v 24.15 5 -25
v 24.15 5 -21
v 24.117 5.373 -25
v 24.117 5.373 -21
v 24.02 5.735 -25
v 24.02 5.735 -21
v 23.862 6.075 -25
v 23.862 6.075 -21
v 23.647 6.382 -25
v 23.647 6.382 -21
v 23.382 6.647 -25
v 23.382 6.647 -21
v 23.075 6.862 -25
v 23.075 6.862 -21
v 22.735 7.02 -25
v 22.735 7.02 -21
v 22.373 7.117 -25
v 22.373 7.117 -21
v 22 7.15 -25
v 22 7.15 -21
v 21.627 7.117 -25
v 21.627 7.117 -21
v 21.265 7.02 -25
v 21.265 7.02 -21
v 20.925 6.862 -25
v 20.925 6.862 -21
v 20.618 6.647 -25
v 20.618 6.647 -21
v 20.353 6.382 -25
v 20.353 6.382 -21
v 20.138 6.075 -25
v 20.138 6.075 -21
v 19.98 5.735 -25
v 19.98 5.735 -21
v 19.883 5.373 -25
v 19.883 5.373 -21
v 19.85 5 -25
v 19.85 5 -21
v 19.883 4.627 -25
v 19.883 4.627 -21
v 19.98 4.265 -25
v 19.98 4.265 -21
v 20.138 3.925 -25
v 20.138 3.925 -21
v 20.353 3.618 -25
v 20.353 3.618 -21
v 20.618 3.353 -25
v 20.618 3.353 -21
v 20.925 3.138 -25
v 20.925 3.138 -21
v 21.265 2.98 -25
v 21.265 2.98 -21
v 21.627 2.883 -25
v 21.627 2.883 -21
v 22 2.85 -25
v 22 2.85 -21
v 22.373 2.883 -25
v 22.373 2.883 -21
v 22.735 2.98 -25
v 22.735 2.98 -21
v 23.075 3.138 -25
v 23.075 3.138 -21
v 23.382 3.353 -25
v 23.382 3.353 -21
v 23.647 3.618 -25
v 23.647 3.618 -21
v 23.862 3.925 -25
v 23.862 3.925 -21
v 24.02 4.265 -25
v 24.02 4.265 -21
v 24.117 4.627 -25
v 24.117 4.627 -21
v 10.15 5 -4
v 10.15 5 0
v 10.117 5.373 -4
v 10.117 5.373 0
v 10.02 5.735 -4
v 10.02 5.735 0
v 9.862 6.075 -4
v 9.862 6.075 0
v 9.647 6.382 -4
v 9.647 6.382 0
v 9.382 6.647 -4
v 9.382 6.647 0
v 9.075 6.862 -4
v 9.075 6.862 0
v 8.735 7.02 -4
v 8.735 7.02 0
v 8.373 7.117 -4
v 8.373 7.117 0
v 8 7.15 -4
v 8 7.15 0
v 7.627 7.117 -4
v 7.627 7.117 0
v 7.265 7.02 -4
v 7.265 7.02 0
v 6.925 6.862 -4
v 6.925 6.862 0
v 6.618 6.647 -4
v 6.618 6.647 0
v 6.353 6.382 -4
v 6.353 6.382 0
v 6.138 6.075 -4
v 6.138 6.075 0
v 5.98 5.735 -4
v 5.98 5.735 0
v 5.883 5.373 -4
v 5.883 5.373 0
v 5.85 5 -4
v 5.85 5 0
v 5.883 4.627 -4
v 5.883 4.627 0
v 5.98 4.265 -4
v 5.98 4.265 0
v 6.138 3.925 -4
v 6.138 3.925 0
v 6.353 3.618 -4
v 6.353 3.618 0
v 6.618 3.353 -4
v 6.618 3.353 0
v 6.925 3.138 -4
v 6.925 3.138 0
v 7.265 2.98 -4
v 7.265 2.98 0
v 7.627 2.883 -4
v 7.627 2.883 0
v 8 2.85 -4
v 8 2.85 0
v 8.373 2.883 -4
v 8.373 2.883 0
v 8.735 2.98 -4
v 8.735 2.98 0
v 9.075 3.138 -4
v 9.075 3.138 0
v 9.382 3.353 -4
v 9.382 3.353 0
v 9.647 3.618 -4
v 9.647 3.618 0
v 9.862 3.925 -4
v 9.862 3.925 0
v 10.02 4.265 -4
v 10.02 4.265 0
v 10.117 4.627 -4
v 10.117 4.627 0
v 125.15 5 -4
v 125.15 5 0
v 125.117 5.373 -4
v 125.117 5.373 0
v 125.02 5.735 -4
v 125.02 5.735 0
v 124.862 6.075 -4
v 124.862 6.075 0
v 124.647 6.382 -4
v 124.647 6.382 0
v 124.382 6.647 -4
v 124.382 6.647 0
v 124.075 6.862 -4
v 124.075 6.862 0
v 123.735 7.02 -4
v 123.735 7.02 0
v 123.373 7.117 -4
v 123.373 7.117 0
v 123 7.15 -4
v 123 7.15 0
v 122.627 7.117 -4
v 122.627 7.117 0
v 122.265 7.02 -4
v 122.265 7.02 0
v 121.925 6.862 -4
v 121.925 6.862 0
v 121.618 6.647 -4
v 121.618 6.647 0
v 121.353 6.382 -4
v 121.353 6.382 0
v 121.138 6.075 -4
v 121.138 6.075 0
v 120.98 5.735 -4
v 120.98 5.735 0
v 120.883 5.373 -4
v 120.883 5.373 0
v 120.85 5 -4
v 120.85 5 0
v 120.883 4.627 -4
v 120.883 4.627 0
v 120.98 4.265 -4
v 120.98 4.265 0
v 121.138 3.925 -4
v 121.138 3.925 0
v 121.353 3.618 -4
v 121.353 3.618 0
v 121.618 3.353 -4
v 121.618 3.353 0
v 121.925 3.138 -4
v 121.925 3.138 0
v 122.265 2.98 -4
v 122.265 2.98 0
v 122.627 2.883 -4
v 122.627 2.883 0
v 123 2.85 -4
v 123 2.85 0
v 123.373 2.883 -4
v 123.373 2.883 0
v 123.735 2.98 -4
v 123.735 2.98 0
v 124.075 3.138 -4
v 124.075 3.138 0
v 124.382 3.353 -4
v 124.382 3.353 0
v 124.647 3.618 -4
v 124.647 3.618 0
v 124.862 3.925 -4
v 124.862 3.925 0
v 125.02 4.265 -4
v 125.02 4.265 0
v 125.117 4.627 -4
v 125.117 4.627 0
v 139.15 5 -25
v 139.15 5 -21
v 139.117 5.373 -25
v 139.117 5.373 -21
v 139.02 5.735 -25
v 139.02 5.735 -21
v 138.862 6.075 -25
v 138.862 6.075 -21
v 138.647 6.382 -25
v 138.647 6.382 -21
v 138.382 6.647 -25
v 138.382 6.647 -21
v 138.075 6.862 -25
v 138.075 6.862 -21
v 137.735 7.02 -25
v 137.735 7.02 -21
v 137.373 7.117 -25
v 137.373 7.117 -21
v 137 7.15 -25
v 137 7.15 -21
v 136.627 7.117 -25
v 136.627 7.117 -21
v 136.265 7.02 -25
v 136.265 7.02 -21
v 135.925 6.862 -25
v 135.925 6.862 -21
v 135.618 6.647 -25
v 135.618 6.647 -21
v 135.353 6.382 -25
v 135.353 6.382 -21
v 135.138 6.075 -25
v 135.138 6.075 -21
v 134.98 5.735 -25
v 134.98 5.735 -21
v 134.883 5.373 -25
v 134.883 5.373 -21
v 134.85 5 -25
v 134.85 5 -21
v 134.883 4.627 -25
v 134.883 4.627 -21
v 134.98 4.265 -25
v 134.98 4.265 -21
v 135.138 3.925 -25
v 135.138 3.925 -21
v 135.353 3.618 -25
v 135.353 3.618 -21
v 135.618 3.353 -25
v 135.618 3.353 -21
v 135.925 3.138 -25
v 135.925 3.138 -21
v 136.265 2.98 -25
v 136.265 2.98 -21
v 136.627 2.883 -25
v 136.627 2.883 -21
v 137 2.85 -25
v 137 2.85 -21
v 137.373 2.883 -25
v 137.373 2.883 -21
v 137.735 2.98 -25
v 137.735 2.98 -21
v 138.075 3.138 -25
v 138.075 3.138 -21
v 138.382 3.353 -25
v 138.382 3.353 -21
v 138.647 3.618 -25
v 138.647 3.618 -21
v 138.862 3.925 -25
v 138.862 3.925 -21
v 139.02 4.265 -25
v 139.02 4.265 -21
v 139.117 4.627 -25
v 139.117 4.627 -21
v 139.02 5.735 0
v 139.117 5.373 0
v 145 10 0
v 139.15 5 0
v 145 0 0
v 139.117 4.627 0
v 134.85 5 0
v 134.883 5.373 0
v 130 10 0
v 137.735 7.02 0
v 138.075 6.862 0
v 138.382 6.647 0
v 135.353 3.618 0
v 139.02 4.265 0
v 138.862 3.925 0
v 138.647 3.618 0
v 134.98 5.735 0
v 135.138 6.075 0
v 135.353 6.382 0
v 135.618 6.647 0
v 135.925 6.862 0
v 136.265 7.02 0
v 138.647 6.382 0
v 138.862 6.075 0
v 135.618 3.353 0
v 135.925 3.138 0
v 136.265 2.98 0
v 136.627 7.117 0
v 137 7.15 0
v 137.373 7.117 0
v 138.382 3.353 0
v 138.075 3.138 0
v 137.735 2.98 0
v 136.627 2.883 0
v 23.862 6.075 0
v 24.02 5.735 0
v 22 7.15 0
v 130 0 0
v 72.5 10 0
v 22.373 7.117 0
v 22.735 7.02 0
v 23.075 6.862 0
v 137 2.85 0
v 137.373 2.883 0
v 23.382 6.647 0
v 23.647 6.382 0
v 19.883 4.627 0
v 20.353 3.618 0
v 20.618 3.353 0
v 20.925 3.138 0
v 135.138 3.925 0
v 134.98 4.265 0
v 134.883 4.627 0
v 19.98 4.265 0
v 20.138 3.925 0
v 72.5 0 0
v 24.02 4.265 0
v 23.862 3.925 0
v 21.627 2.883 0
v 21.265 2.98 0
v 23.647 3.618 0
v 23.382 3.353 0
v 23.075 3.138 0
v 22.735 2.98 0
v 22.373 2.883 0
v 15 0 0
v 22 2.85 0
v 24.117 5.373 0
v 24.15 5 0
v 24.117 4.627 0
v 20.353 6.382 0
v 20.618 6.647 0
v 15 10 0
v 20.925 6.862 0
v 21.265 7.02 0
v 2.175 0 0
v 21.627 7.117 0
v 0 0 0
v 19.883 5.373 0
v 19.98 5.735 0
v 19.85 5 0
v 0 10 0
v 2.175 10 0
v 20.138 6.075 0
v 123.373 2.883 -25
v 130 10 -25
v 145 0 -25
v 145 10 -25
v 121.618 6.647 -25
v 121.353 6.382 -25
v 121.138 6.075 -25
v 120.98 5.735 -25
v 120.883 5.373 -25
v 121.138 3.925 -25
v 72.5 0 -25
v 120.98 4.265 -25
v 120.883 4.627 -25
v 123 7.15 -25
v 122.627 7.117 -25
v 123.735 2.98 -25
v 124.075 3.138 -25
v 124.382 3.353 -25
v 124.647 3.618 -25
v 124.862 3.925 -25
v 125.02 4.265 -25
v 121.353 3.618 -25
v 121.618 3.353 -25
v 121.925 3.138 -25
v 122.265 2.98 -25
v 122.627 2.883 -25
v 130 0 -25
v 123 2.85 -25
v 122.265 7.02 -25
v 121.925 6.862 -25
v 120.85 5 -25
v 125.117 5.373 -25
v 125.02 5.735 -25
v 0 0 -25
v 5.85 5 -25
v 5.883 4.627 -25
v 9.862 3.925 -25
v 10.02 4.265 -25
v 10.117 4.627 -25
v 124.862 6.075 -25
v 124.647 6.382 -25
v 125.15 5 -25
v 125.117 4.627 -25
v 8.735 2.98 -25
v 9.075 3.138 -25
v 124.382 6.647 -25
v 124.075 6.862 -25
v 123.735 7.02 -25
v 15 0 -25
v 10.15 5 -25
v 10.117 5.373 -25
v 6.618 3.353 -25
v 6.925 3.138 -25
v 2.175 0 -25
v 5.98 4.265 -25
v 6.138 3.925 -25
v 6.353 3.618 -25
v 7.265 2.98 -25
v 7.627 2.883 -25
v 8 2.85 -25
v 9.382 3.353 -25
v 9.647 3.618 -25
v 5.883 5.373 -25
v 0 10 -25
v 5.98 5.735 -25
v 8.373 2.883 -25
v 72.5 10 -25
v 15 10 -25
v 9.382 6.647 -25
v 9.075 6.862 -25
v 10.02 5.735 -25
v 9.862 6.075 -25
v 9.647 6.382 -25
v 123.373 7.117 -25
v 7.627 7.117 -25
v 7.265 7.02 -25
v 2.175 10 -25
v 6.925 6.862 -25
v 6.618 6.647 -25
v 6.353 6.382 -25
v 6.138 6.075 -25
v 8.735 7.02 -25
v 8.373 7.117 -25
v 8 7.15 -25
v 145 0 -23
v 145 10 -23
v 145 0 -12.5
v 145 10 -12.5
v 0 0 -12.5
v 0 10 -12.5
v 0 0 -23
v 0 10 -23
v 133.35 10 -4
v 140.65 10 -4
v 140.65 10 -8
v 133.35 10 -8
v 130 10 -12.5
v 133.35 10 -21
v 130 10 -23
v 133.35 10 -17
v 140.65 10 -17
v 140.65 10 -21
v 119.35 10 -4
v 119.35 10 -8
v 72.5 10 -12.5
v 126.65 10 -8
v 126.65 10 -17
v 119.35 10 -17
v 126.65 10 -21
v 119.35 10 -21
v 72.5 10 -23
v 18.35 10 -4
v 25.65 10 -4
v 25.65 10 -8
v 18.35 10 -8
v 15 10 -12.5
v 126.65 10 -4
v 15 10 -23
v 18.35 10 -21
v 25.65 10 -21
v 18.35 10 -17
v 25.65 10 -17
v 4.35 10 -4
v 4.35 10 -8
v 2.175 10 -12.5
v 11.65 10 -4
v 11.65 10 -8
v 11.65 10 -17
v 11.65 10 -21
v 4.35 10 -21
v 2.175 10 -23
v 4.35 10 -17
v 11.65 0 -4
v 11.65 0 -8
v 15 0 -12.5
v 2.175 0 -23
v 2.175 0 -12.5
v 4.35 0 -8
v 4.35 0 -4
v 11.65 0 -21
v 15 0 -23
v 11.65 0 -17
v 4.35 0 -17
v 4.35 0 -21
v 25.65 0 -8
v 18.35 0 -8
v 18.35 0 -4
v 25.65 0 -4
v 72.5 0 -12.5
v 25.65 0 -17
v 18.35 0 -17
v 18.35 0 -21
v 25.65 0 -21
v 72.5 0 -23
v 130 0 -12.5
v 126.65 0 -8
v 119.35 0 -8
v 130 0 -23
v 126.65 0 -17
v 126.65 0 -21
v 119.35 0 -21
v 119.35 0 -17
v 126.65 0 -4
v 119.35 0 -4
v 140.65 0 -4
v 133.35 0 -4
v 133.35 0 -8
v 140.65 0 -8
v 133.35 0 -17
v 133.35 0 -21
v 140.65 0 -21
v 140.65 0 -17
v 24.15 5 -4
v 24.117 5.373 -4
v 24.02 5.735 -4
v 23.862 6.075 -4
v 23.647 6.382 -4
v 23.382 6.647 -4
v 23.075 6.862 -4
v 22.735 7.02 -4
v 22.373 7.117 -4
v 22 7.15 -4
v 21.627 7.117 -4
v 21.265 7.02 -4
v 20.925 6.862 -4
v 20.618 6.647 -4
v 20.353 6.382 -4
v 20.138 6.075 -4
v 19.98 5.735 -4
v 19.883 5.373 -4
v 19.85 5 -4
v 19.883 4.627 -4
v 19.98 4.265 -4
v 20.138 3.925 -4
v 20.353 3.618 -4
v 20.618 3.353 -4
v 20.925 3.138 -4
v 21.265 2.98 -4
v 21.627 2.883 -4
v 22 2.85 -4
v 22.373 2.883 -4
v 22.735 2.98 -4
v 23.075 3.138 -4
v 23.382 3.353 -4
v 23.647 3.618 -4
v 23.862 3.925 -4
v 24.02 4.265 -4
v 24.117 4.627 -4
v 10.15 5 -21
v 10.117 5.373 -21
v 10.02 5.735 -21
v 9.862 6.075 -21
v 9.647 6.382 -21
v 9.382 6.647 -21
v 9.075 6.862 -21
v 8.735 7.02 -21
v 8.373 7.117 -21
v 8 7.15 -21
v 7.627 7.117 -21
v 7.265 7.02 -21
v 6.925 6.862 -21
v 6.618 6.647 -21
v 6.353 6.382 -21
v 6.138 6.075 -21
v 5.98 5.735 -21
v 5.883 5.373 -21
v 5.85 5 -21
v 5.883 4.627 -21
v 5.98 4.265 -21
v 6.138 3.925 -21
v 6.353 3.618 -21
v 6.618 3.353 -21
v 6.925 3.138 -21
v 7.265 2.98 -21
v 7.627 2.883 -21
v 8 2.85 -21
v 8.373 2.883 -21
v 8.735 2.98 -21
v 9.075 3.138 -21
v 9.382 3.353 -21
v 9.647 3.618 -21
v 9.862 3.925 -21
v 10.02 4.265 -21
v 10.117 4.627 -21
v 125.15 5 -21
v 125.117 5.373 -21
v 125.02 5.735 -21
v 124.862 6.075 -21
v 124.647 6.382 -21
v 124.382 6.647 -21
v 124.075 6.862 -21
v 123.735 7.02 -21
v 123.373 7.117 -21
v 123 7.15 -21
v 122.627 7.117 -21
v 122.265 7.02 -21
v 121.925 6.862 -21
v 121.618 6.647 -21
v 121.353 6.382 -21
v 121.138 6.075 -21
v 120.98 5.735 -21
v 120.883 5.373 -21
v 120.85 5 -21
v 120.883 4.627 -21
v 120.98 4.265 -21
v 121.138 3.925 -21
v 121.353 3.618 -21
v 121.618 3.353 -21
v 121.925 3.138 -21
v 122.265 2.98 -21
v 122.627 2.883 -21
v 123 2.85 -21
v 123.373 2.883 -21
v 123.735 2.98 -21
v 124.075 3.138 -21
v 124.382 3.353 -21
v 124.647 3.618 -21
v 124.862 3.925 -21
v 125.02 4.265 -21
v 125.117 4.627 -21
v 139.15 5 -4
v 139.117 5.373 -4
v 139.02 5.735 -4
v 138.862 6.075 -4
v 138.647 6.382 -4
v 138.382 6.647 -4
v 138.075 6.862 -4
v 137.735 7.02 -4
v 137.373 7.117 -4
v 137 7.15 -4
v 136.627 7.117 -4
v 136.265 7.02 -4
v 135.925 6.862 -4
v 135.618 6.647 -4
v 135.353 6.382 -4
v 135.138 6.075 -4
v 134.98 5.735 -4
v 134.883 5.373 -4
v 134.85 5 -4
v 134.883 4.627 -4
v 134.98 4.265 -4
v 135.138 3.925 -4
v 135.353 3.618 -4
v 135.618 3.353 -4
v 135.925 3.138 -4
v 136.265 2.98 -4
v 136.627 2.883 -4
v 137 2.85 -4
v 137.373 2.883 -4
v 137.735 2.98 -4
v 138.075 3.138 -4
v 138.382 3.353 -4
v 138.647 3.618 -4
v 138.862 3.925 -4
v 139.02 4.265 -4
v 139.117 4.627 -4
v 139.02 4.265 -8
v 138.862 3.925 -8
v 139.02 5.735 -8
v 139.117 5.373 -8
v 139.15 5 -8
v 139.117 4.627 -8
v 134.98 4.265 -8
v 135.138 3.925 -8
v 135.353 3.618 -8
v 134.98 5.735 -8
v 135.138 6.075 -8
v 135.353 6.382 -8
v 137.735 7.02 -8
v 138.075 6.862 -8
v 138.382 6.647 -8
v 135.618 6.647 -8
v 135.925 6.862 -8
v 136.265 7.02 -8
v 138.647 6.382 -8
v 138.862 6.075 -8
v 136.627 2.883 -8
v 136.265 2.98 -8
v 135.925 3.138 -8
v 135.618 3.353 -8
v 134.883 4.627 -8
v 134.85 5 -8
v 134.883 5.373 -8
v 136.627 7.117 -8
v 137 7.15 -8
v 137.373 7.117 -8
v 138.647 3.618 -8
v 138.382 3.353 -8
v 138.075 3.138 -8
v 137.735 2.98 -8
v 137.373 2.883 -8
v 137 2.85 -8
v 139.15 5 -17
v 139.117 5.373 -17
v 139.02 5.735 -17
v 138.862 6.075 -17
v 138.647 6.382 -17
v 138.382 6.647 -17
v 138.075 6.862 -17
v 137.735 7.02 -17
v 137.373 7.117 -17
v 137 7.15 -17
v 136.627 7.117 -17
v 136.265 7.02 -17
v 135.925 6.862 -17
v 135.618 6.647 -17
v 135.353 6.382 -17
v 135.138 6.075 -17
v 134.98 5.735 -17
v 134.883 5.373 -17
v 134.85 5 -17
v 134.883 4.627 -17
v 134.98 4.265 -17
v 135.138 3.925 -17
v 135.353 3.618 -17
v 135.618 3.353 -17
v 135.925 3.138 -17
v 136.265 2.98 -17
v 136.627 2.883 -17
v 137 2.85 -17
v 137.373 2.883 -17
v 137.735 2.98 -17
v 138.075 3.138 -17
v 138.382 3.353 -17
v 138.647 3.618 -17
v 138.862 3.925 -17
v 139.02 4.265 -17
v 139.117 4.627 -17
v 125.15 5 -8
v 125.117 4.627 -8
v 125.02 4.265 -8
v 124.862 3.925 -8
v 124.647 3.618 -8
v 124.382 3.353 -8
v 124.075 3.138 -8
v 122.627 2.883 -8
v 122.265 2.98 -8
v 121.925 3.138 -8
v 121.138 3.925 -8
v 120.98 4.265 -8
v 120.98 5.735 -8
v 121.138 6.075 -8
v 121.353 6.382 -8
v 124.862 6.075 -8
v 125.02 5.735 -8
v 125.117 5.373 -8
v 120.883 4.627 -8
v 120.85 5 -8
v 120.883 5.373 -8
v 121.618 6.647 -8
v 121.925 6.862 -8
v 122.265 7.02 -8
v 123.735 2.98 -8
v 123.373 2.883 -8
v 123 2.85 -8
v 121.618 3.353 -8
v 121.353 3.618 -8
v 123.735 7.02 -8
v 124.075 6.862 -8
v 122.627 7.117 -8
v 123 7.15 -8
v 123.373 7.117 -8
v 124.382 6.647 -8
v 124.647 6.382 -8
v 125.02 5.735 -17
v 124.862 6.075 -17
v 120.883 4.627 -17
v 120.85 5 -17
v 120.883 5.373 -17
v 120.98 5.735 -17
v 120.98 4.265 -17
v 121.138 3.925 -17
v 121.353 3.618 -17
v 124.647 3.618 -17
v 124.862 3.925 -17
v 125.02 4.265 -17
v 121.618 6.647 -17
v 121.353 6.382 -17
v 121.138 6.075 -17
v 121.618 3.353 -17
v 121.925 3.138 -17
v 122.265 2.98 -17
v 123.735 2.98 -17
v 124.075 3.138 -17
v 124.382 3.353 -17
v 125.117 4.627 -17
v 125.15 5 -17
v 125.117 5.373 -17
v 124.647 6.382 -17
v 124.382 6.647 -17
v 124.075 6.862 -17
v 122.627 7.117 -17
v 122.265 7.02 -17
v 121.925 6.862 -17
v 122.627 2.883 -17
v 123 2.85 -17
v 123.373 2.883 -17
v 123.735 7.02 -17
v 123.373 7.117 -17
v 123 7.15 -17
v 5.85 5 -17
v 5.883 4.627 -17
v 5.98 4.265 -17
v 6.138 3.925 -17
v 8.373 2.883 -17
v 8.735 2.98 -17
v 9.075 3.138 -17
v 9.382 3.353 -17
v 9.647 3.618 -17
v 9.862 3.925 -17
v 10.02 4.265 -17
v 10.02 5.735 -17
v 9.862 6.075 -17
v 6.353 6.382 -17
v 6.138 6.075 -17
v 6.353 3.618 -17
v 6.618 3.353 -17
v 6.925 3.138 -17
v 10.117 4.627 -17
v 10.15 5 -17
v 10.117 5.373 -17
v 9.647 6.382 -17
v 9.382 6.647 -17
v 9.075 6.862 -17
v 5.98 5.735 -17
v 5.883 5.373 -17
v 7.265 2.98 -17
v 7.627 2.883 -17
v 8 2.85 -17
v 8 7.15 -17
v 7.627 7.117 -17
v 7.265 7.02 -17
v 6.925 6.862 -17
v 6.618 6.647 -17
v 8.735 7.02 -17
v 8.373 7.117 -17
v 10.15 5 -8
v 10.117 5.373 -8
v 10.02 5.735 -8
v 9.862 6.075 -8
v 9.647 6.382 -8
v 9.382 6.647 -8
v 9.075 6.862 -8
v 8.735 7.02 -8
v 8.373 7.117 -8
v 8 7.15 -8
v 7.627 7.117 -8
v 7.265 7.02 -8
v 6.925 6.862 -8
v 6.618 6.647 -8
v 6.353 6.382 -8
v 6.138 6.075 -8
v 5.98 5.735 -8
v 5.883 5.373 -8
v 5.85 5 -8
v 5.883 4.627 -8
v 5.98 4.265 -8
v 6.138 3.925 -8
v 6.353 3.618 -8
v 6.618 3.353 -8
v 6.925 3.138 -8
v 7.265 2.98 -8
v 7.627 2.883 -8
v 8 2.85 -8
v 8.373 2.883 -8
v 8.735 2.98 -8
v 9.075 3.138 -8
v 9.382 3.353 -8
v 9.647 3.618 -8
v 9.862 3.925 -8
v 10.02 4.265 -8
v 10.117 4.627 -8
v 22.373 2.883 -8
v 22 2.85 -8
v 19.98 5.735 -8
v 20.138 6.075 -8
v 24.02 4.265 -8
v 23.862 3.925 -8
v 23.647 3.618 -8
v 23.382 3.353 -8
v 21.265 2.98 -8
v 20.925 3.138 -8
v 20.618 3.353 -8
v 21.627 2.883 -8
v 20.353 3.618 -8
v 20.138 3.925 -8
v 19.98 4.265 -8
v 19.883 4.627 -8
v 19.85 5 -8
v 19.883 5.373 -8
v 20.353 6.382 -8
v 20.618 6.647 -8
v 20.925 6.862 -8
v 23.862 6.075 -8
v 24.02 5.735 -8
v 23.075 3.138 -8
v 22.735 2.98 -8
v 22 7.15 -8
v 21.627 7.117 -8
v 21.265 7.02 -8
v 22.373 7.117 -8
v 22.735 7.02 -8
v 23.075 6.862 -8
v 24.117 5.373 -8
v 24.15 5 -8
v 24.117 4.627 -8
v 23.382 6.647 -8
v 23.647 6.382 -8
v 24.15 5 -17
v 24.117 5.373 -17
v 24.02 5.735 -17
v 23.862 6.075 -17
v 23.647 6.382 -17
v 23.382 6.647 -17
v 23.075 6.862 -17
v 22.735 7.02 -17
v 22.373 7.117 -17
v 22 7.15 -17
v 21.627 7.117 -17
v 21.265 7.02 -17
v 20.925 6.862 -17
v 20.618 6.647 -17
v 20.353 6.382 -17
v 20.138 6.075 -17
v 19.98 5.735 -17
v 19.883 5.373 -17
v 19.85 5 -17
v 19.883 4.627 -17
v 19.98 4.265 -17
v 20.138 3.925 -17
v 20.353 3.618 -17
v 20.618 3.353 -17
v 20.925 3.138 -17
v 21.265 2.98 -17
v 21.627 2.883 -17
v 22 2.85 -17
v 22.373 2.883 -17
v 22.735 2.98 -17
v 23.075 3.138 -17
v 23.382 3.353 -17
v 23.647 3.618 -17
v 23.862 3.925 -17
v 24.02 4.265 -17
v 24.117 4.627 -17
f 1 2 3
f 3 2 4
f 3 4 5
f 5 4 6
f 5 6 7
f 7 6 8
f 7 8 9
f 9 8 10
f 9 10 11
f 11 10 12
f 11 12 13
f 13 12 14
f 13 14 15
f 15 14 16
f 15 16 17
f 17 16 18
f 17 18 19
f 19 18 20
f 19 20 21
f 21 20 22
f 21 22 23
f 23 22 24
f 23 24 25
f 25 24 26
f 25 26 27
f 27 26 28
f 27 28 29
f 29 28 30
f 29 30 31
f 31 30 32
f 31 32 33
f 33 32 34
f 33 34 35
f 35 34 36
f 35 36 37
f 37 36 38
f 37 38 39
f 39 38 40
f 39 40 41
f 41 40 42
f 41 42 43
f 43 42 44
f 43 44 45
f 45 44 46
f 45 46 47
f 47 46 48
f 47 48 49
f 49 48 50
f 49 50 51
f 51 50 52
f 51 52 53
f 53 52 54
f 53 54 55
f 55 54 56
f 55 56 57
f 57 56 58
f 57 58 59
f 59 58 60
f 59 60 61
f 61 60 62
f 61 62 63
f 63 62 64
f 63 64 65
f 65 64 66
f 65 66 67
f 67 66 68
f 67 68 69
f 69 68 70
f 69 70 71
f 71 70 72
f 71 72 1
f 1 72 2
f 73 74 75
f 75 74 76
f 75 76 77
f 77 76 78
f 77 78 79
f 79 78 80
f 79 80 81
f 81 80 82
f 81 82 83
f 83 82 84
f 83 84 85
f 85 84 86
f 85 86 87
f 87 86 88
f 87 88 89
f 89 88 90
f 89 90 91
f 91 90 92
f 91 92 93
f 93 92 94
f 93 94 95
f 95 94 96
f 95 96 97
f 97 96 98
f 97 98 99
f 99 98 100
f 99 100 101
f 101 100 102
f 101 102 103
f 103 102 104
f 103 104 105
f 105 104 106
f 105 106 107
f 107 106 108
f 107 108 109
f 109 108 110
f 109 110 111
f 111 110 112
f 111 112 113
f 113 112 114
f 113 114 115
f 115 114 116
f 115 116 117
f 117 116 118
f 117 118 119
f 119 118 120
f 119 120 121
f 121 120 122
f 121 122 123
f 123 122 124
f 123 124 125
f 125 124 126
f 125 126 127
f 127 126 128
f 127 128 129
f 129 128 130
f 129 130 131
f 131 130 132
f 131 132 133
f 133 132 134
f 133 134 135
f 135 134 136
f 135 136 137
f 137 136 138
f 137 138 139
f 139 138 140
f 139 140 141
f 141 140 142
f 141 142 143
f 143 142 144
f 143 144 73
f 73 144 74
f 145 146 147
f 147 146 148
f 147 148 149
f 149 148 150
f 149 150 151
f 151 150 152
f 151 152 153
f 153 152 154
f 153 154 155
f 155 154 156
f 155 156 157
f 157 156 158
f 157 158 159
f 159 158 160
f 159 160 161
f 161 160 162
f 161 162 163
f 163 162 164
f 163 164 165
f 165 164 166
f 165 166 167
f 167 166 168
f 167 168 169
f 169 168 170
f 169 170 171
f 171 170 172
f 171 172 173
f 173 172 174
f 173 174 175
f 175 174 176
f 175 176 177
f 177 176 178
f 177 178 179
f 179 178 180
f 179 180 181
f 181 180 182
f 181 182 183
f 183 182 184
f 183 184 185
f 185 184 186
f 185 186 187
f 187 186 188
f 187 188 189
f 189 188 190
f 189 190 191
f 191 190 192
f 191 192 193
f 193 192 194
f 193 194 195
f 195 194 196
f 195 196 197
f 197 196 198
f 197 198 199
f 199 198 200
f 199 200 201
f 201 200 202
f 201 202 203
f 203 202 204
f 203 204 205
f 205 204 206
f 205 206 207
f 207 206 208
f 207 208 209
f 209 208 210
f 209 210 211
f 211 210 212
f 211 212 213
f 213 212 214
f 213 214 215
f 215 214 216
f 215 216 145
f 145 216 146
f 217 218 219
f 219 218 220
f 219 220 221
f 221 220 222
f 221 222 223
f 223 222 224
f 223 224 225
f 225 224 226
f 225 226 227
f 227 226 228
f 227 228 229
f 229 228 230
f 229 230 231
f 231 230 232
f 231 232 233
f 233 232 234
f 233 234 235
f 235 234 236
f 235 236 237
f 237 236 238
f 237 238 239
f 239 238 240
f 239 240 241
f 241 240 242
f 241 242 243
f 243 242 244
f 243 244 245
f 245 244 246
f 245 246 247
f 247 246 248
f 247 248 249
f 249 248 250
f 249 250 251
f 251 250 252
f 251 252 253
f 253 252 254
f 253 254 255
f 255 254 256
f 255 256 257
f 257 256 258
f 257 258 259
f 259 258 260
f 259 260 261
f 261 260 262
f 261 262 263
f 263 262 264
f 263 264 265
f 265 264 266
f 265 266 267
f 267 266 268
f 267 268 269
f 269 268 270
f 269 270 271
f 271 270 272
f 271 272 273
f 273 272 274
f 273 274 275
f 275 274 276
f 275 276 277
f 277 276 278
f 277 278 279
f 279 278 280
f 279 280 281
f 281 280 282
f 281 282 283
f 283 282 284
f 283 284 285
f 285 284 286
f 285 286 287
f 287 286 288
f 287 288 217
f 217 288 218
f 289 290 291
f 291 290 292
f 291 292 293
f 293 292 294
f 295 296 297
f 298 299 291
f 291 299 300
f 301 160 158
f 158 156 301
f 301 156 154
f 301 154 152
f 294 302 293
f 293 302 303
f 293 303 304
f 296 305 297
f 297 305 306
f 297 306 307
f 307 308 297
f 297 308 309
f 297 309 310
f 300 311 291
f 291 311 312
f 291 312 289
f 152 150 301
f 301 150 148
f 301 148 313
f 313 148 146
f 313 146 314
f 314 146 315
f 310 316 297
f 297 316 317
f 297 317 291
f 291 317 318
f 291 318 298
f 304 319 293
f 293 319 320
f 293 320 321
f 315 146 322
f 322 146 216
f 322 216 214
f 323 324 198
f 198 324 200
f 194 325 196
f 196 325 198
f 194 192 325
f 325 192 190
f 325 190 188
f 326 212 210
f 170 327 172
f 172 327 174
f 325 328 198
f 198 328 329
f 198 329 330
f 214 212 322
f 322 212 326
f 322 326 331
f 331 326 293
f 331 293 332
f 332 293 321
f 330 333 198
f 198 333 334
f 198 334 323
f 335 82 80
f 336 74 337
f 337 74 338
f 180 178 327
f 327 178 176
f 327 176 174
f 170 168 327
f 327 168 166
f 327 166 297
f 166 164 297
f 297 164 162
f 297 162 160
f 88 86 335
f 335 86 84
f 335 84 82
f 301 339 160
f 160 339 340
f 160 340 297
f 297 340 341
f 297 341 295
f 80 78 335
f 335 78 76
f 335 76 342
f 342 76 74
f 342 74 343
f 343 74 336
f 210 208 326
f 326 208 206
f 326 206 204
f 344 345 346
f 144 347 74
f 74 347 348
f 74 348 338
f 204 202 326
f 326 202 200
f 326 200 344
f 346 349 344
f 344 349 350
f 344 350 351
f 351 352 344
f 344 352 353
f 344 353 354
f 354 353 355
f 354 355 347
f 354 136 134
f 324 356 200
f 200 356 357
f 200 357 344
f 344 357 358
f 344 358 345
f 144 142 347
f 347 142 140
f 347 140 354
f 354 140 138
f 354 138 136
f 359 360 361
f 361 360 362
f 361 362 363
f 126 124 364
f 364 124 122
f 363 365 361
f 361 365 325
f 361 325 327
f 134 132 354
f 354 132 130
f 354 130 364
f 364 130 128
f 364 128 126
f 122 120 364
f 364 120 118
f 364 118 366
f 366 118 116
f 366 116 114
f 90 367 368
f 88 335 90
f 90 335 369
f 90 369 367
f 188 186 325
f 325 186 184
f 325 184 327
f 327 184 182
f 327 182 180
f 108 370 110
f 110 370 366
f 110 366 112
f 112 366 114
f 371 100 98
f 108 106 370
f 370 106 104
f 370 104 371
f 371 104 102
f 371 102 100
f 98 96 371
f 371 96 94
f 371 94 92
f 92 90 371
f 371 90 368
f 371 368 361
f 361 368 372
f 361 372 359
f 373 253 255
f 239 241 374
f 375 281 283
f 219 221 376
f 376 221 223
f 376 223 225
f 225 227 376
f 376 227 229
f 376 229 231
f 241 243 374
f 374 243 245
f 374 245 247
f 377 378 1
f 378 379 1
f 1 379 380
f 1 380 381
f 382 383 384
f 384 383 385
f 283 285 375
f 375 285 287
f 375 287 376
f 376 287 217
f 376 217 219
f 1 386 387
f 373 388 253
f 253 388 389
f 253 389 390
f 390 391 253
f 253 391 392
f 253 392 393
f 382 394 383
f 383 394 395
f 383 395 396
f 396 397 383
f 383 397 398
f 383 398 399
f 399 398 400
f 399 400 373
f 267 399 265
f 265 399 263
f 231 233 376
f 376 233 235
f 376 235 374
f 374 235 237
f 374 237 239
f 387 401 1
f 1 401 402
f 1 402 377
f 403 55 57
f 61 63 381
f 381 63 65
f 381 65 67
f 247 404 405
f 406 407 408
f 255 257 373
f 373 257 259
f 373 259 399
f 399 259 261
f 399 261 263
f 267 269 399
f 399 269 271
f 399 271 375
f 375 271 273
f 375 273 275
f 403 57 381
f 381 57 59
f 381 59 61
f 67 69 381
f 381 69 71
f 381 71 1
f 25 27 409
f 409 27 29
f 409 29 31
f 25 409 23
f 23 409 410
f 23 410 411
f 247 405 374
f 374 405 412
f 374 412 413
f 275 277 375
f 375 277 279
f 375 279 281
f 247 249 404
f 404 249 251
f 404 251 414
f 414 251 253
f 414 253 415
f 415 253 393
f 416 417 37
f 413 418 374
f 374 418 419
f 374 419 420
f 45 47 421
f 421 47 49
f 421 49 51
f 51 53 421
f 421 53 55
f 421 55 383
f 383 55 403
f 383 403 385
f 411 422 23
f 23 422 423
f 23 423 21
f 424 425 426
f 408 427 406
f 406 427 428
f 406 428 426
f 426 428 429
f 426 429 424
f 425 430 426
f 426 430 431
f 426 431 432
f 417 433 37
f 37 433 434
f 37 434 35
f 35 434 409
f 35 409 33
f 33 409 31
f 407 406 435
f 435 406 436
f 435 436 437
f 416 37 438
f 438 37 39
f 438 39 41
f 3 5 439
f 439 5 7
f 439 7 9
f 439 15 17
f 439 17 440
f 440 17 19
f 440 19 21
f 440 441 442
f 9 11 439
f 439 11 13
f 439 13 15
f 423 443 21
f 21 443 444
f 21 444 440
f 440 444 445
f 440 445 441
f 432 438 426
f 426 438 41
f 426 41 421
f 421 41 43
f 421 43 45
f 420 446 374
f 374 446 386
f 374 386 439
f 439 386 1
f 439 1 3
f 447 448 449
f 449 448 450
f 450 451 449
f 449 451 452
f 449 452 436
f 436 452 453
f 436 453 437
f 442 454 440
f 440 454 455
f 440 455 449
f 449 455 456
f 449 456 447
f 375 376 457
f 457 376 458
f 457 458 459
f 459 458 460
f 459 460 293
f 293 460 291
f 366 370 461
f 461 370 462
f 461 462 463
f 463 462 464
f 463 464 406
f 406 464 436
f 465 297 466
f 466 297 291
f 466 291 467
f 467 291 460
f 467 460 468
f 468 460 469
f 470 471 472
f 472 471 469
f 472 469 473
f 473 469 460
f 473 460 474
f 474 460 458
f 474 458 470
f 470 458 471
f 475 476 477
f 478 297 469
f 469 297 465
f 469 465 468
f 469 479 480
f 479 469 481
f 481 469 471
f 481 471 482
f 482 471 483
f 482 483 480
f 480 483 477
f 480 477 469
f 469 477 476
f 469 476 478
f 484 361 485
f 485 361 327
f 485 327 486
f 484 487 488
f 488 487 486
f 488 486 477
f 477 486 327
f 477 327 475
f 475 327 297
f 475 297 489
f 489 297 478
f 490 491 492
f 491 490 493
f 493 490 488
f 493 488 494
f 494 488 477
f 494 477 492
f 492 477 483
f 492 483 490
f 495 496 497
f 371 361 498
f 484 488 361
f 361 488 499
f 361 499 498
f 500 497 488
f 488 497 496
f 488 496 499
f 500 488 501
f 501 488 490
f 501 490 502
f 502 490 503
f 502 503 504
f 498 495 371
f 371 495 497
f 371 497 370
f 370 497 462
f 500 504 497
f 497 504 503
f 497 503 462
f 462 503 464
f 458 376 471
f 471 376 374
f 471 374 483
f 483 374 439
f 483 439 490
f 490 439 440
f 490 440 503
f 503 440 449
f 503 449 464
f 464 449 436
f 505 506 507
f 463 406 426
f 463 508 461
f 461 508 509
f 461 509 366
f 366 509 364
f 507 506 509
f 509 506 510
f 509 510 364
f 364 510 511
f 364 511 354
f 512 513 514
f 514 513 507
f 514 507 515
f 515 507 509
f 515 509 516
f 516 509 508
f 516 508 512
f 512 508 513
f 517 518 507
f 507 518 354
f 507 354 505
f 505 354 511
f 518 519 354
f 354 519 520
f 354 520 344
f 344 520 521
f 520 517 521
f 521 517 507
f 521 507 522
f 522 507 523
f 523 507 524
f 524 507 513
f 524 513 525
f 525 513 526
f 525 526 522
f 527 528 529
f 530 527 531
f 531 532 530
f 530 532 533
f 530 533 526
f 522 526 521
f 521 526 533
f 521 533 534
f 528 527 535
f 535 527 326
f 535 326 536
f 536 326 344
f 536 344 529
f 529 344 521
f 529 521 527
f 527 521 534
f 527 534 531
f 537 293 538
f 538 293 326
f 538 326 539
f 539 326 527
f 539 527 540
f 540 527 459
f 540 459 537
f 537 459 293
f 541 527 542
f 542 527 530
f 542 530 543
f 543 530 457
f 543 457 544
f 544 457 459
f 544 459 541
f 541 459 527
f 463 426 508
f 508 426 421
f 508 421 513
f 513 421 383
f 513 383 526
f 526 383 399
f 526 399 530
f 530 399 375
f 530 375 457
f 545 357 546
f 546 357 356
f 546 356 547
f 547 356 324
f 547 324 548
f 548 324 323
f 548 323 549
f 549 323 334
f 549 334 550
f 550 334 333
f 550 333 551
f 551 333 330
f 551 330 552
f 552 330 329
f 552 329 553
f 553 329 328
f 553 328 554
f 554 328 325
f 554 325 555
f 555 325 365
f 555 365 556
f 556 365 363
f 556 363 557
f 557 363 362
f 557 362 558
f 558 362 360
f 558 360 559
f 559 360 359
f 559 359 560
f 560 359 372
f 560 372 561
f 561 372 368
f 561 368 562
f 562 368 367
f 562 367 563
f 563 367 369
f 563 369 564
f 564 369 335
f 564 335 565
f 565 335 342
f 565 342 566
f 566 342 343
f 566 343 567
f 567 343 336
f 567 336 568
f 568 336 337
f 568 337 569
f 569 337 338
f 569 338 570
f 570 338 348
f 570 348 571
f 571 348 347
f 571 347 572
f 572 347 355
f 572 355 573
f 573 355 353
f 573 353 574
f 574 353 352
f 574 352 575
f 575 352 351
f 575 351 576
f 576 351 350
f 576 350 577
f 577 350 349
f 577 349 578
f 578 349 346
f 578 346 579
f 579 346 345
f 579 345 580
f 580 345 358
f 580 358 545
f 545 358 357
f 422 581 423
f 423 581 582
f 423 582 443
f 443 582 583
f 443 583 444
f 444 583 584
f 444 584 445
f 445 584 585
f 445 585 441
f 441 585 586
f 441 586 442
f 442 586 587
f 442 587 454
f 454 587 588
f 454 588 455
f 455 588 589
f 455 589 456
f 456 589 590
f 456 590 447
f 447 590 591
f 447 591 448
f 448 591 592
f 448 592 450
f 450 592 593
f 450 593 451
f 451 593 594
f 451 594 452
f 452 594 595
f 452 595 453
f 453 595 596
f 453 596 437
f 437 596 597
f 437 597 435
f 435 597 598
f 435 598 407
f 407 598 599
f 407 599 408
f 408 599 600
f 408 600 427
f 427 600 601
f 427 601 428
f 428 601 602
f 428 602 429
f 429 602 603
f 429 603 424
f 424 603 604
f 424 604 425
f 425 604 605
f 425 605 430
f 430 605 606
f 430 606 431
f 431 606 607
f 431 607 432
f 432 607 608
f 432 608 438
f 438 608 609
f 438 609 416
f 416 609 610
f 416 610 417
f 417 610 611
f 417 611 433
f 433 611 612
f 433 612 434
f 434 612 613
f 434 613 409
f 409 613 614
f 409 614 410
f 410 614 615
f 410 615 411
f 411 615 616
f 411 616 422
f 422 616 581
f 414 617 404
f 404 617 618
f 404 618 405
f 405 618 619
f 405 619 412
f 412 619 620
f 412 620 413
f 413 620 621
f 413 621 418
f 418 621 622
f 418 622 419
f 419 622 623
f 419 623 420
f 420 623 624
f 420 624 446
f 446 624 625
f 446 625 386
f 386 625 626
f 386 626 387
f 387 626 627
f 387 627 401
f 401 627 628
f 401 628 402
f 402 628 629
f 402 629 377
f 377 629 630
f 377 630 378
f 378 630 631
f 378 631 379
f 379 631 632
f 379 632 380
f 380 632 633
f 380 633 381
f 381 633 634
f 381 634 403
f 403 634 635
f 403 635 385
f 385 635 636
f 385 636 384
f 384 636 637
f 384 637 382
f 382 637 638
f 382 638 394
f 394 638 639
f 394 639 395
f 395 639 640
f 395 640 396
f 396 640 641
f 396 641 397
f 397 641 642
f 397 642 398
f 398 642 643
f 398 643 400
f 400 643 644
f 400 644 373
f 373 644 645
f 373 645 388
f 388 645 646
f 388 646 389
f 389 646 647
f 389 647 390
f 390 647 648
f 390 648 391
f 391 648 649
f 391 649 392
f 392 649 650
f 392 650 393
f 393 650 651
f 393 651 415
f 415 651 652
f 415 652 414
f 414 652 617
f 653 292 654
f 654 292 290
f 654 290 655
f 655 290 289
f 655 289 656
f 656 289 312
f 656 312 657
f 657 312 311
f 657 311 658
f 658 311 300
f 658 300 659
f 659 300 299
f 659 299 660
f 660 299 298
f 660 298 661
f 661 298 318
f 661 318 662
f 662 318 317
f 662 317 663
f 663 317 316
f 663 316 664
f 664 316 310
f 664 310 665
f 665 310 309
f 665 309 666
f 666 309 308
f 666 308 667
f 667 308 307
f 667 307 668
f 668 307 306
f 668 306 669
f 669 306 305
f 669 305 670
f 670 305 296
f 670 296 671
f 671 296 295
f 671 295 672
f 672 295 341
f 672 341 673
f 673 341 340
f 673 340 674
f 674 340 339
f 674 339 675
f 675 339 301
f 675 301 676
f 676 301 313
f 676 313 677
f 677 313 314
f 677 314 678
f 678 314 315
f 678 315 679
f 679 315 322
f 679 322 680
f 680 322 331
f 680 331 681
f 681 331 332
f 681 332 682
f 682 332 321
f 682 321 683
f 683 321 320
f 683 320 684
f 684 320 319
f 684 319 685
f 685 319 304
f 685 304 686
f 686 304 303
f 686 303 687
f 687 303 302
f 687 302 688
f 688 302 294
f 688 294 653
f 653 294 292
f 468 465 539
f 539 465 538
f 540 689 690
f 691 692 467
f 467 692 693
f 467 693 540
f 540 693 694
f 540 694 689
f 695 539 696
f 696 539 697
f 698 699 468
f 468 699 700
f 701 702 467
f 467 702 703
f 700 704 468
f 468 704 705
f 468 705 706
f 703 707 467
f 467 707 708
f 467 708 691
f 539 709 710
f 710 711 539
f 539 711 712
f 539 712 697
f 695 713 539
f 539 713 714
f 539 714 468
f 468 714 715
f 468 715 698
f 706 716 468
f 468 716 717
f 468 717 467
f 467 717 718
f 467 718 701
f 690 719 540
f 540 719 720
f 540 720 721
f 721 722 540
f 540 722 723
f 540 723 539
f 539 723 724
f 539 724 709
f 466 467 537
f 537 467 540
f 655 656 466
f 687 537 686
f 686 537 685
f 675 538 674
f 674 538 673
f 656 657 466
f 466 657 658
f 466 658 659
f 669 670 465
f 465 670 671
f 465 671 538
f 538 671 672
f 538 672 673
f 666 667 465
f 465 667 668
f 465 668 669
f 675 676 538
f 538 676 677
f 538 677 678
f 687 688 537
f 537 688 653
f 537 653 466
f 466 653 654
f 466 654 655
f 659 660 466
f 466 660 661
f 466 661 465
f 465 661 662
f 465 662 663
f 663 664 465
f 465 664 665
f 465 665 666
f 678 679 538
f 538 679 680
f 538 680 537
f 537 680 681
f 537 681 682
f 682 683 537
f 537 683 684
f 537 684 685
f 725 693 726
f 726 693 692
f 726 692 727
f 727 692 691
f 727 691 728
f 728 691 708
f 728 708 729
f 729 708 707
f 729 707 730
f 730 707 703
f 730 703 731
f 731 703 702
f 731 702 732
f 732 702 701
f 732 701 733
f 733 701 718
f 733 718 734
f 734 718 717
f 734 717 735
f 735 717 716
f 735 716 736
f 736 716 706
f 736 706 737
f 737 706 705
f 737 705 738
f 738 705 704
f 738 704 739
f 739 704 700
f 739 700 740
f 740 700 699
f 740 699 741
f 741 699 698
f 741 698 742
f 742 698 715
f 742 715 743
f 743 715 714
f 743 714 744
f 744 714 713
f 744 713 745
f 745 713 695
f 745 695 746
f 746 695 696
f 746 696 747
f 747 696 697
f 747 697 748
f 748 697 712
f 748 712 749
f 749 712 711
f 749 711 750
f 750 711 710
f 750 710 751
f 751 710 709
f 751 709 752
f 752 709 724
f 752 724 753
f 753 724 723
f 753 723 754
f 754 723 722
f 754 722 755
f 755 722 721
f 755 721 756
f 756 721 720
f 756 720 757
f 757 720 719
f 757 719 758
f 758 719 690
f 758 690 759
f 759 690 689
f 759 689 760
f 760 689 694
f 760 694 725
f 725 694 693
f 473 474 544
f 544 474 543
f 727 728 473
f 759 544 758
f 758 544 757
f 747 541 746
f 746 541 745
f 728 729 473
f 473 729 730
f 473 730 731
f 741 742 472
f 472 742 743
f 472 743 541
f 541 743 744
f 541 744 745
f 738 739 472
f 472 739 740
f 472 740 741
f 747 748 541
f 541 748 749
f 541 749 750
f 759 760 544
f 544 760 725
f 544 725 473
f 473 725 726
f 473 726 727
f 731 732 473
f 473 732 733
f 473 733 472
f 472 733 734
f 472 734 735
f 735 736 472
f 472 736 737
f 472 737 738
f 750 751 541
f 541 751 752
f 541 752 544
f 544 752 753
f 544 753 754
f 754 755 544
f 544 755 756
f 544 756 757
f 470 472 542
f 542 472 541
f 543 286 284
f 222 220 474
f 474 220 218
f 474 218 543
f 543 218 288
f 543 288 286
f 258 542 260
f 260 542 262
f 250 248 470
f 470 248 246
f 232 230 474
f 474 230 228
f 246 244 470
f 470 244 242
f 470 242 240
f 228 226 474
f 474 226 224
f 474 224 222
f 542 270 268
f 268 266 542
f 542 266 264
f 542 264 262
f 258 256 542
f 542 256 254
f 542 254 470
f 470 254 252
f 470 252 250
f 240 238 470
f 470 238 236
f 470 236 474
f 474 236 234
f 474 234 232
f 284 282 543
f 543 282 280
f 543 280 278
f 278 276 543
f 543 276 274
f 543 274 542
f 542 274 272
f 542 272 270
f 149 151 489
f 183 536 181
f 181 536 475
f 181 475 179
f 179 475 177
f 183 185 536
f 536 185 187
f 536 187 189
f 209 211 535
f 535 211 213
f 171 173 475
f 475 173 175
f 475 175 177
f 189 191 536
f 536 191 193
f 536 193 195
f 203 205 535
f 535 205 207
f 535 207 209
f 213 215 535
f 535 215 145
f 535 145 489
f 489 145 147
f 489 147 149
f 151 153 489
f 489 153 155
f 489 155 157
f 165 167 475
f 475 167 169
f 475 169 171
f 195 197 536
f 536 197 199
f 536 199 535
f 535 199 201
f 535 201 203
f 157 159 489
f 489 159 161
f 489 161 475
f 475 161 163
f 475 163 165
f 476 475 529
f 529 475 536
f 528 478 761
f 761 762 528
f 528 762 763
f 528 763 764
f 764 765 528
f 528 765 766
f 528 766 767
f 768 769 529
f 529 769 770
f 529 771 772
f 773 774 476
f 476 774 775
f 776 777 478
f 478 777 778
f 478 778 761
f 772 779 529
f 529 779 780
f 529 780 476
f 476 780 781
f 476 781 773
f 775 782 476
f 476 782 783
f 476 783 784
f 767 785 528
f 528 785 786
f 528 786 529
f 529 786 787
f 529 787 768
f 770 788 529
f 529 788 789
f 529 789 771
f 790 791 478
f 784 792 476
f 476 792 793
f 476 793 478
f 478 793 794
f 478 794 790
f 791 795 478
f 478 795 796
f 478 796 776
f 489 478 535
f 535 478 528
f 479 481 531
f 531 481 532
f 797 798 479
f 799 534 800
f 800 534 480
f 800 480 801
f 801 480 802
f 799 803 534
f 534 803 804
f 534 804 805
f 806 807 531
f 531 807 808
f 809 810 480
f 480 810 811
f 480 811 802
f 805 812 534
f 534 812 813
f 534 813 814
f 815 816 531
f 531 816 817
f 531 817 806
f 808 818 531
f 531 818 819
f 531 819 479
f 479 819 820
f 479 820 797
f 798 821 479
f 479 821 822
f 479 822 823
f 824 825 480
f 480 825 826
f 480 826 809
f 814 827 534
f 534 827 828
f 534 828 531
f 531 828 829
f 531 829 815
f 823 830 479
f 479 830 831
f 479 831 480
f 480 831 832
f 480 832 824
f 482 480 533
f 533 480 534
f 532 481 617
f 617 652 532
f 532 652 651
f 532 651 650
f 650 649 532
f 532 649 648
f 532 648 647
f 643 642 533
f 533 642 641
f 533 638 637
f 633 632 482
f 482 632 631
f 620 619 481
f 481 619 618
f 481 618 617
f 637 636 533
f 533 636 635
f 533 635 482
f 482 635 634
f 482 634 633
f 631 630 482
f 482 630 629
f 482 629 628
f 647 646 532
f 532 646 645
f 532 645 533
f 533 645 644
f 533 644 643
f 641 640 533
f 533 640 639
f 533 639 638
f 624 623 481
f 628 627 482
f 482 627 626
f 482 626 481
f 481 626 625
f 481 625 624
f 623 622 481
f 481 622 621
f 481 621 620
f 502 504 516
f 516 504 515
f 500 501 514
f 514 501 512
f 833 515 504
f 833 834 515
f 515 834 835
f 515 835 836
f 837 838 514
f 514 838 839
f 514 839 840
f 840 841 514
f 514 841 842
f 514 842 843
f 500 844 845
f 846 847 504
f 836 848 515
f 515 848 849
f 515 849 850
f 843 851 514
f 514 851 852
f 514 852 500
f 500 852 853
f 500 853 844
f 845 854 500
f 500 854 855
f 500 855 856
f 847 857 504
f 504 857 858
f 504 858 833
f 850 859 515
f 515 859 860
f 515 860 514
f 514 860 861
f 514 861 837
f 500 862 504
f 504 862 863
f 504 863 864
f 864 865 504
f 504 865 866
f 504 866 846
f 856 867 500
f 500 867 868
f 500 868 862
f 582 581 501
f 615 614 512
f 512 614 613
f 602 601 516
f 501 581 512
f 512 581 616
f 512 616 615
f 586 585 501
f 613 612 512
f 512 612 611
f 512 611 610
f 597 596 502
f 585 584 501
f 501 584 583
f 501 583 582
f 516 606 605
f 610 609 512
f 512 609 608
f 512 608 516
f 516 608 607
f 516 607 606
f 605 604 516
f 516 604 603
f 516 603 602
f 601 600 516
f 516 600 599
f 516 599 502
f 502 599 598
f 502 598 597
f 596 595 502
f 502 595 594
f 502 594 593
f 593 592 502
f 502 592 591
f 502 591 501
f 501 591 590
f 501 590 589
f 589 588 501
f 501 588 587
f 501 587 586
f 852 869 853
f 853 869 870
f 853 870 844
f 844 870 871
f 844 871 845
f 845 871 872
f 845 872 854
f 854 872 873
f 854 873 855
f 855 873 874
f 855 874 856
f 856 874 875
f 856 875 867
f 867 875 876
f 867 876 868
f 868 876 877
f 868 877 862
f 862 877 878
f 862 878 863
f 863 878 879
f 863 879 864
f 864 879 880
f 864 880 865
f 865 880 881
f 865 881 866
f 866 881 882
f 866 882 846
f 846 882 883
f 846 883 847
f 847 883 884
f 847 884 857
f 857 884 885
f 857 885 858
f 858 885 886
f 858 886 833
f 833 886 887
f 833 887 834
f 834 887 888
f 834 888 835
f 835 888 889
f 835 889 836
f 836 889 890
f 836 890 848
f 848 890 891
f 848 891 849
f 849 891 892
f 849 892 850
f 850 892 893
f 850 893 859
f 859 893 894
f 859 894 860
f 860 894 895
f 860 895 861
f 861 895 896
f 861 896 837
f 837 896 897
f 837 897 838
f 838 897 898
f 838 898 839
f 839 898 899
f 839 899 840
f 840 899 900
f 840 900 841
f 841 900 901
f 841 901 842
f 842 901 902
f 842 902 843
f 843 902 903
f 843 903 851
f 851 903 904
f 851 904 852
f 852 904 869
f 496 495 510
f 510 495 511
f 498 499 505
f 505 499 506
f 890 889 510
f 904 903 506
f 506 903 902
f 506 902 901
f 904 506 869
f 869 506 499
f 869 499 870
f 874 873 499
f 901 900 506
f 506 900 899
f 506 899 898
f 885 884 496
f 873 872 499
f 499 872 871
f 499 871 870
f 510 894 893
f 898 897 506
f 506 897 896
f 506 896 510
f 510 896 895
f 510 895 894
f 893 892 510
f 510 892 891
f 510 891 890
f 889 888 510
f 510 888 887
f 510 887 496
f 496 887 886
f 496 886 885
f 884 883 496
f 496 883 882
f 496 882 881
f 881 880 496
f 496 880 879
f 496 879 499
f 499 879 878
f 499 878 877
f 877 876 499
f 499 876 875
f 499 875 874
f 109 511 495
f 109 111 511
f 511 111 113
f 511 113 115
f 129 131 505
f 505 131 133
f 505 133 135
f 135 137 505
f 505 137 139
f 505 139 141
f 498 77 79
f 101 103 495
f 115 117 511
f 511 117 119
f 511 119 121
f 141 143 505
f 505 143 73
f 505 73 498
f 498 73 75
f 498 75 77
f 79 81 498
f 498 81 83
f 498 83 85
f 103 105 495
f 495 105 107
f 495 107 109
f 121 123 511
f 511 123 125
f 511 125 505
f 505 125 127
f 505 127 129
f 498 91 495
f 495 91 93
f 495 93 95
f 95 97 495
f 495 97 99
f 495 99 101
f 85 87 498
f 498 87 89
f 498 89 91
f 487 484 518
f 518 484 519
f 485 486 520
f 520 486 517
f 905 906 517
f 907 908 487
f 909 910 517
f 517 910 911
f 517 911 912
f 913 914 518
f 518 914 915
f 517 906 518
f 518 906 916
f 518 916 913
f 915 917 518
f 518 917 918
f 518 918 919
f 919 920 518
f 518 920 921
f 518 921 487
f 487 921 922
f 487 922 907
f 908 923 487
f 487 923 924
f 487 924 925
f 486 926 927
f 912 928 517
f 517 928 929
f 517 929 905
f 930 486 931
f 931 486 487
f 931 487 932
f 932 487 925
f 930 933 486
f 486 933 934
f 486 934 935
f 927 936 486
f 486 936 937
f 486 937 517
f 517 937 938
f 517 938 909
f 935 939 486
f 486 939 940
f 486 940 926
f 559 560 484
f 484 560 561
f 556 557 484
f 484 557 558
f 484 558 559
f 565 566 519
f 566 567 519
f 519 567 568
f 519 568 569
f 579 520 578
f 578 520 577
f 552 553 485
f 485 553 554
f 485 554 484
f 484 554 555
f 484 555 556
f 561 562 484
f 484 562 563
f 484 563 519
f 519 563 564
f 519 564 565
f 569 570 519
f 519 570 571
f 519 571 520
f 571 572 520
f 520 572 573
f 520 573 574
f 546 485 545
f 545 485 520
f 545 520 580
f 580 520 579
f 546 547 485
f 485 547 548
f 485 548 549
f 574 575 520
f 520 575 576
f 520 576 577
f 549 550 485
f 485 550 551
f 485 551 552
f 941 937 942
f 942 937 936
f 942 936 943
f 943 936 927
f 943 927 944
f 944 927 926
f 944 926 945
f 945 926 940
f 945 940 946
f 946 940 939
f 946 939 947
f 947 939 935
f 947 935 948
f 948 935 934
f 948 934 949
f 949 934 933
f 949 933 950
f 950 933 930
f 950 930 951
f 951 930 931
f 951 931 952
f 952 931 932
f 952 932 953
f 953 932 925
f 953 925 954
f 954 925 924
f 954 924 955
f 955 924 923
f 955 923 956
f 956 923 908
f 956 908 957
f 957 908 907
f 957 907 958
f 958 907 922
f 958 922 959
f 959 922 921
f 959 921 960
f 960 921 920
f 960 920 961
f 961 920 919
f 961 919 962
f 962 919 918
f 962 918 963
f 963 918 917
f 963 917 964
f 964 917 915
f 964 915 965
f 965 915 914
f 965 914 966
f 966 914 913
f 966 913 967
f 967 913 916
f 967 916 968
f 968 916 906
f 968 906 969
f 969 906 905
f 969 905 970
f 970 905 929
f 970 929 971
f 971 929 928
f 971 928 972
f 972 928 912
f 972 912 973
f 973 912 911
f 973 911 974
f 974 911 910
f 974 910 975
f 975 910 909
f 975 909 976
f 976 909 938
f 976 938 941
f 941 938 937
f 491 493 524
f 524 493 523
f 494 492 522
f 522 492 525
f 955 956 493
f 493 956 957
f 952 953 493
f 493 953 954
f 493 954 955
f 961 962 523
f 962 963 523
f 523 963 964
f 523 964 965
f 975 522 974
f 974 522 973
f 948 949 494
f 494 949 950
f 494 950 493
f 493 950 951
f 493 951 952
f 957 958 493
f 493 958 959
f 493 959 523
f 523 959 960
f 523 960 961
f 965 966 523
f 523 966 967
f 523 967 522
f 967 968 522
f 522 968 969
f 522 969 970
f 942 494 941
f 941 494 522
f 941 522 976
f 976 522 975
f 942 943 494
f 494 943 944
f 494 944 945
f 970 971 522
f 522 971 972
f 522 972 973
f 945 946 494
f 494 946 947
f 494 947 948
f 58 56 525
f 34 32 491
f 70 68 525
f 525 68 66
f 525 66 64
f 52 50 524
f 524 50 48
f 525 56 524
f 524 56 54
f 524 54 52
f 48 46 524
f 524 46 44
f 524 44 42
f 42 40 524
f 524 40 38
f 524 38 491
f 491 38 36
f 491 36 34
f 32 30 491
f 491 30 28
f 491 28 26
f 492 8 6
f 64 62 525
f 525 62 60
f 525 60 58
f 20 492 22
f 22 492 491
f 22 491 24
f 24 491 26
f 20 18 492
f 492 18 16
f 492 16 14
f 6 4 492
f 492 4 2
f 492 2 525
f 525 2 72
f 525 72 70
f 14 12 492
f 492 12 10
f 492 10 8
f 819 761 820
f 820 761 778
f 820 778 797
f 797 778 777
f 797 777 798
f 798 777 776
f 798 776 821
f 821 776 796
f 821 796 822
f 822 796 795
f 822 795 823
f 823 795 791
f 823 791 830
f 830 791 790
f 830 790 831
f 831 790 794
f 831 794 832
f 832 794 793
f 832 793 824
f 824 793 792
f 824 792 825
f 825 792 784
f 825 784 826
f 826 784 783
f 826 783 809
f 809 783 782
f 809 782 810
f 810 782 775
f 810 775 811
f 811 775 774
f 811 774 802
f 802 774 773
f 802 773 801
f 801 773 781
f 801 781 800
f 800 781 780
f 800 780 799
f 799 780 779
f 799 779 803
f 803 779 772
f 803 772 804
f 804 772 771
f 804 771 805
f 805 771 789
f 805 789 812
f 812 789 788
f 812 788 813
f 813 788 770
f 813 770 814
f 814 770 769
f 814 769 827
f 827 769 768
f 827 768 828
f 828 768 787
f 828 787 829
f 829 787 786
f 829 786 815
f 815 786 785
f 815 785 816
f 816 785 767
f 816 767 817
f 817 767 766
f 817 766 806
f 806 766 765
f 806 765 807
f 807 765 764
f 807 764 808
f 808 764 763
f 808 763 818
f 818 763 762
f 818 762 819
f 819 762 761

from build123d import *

# Parameters (mm, degrees)
SKETCH1_W           = 145
SKETCH1_H           = 25
BOSS_EXTRUDE1_DEPTH = 10
SKETCH2_R           = 2.15
CUT_EXTRUDE1_DEPTH  = 148.478812038
CUT_EXTRUDE2_REACH  = 149.479
SKETCH3_W           = 7.3
SKETCH3_H           = 4


with BuildPart() as part:
    # Sketch1 → Boss-Extrude1 (new body)
    with BuildSketch(Plane(origin=(0, 0, 0), x_dir=(1, 0, 0), z_dir=(0, 1, 0))):
        with Locations((72.5, 12.5)):
            Rectangle(SKETCH1_W, SKETCH1_H)
    extrude(amount=BOSS_EXTRUDE1_DEPTH)

    # Sketch2 → Cut-Extrude1 (cut, through all)
    with BuildSketch(Plane.XY):
        with Locations((22, 5)):
            Circle(SKETCH2_R)
        with Locations((8, 5)):
            Circle(SKETCH2_R)
        with Locations(Location((123, 5, 0), (0, 0, 180))):
            Circle(SKETCH2_R)
        with Locations(Location((137, 5, 0), (0, 0, 180))):
            Circle(SKETCH2_R)
    extrude(amount=-CUT_EXTRUDE1_DEPTH, mode=Mode.SUBTRACT)

    # Sketch3 → Cut-Extrude2 (cut, up to next)
    with BuildSketch(Plane(origin=(0, 10, 0), x_dir=(1, 0, 0), z_dir=(0, 1, 0)), mode=Mode.PRIVATE) as cut_extrude2_sk1:
        with Locations((137, 19)):
            Rectangle(SKETCH3_W, SKETCH3_H)
    cut_extrude2_tool1 = extrude(cut_extrude2_sk1.sketch, amount=-CUT_EXTRUDE2_REACH, mode=Mode.PRIVATE) & part.part
    # Sketch3 → Cut-Extrude2 (cut, up to next)
    with BuildSketch(Plane(origin=(0, 10, 0), x_dir=(1, 0, 0), z_dir=(0, 1, 0)), mode=Mode.PRIVATE) as cut_extrude2_sk2:
        with Locations((137, 6)):
            Rectangle(SKETCH3_W, SKETCH3_H)
    cut_extrude2_tool2 = extrude(cut_extrude2_sk2.sketch, amount=-CUT_EXTRUDE2_REACH, mode=Mode.PRIVATE) & part.part
    # Sketch3 → Cut-Extrude2 (cut, up to next)
    with BuildSketch(Plane(origin=(0, 10, 0), x_dir=(1, 0, 0), z_dir=(0, 1, 0)), mode=Mode.PRIVATE) as cut_extrude2_sk3:
        with Locations((123, 6)):
            Rectangle(SKETCH3_W, SKETCH3_H)
    cut_extrude2_tool3 = extrude(cut_extrude2_sk3.sketch, amount=-CUT_EXTRUDE2_REACH, mode=Mode.PRIVATE) & part.part
    # Sketch3 → Cut-Extrude2 (cut, up to next)
    with BuildSketch(Plane(origin=(0, 10, 0), x_dir=(1, 0, 0), z_dir=(0, 1, 0)), mode=Mode.PRIVATE) as cut_extrude2_sk4:
        with Locations((123, 19)):
            Rectangle(SKETCH3_W, SKETCH3_H)
    cut_extrude2_tool4 = extrude(cut_extrude2_sk4.sketch, amount=-CUT_EXTRUDE2_REACH, mode=Mode.PRIVATE) & part.part
    # Sketch3 → Cut-Extrude2 (cut, up to next)
    with BuildSketch(Plane(origin=(0, 10, 0), x_dir=(1, 0, 0), z_dir=(0, 1, 0)), mode=Mode.PRIVATE) as cut_extrude2_sk5:
        with Locations((22, 19)):
            Rectangle(SKETCH3_W, SKETCH3_H)
    cut_extrude2_tool5 = extrude(cut_extrude2_sk5.sketch, amount=-CUT_EXTRUDE2_REACH, mode=Mode.PRIVATE) & part.part
    # Sketch3 → Cut-Extrude2 (cut, up to next)
    with BuildSketch(Plane(origin=(0, 10, 0), x_dir=(1, 0, 0), z_dir=(0, 1, 0)), mode=Mode.PRIVATE) as cut_extrude2_sk6:
        with Locations((22, 6)):
            Rectangle(SKETCH3_W, SKETCH3_H)
    cut_extrude2_tool6 = extrude(cut_extrude2_sk6.sketch, amount=-CUT_EXTRUDE2_REACH, mode=Mode.PRIVATE) & part.part
    # Sketch3 → Cut-Extrude2 (cut, up to next)
    with BuildSketch(Plane(origin=(0, 10, 0), x_dir=(1, 0, 0), z_dir=(0, 1, 0)), mode=Mode.PRIVATE) as cut_extrude2_sk7:
        with Locations((8, 19)):
            Rectangle(SKETCH3_W, SKETCH3_H)
    cut_extrude2_tool7 = extrude(cut_extrude2_sk7.sketch, amount=-CUT_EXTRUDE2_REACH, mode=Mode.PRIVATE) & part.part
    # Sketch3 → Cut-Extrude2 (cut, up to next)
    with BuildSketch(Plane(origin=(0, 10, 0), x_dir=(1, 0, 0), z_dir=(0, 1, 0)), mode=Mode.PRIVATE) as cut_extrude2_sk8:
        with Locations((8, 6)):
            Rectangle(SKETCH3_W, SKETCH3_H)
    cut_extrude2_tool8 = extrude(cut_extrude2_sk8.sketch, amount=-CUT_EXTRUDE2_REACH, mode=Mode.PRIVATE) & part.part
    add(cut_extrude2_tool1.solids().sort_by_distance((137, 10, -19))[0], mode=Mode.SUBTRACT)
    add(cut_extrude2_tool2.solids().sort_by_distance((137, 10, -6))[0], mode=Mode.SUBTRACT)
    add(cut_extrude2_tool3.solids().sort_by_distance((123, 10, -6))[0], mode=Mode.SUBTRACT)
    add(cut_extrude2_tool4.solids().sort_by_distance((123, 10, -19))[0], mode=Mode.SUBTRACT)
    add(cut_extrude2_tool5.solids().sort_by_distance((22, 10, -19))[0], mode=Mode.SUBTRACT)
    add(cut_extrude2_tool6.solids().sort_by_distance((22, 10, -6))[0], mode=Mode.SUBTRACT)
    add(cut_extrude2_tool7.solids().sort_by_distance((8, 10, -19))[0], mode=Mode.SUBTRACT)
    add(cut_extrude2_tool8.solids().sort_by_distance((8, 10, -6))[0], mode=Mode.SUBTRACT)


solid = part.part
